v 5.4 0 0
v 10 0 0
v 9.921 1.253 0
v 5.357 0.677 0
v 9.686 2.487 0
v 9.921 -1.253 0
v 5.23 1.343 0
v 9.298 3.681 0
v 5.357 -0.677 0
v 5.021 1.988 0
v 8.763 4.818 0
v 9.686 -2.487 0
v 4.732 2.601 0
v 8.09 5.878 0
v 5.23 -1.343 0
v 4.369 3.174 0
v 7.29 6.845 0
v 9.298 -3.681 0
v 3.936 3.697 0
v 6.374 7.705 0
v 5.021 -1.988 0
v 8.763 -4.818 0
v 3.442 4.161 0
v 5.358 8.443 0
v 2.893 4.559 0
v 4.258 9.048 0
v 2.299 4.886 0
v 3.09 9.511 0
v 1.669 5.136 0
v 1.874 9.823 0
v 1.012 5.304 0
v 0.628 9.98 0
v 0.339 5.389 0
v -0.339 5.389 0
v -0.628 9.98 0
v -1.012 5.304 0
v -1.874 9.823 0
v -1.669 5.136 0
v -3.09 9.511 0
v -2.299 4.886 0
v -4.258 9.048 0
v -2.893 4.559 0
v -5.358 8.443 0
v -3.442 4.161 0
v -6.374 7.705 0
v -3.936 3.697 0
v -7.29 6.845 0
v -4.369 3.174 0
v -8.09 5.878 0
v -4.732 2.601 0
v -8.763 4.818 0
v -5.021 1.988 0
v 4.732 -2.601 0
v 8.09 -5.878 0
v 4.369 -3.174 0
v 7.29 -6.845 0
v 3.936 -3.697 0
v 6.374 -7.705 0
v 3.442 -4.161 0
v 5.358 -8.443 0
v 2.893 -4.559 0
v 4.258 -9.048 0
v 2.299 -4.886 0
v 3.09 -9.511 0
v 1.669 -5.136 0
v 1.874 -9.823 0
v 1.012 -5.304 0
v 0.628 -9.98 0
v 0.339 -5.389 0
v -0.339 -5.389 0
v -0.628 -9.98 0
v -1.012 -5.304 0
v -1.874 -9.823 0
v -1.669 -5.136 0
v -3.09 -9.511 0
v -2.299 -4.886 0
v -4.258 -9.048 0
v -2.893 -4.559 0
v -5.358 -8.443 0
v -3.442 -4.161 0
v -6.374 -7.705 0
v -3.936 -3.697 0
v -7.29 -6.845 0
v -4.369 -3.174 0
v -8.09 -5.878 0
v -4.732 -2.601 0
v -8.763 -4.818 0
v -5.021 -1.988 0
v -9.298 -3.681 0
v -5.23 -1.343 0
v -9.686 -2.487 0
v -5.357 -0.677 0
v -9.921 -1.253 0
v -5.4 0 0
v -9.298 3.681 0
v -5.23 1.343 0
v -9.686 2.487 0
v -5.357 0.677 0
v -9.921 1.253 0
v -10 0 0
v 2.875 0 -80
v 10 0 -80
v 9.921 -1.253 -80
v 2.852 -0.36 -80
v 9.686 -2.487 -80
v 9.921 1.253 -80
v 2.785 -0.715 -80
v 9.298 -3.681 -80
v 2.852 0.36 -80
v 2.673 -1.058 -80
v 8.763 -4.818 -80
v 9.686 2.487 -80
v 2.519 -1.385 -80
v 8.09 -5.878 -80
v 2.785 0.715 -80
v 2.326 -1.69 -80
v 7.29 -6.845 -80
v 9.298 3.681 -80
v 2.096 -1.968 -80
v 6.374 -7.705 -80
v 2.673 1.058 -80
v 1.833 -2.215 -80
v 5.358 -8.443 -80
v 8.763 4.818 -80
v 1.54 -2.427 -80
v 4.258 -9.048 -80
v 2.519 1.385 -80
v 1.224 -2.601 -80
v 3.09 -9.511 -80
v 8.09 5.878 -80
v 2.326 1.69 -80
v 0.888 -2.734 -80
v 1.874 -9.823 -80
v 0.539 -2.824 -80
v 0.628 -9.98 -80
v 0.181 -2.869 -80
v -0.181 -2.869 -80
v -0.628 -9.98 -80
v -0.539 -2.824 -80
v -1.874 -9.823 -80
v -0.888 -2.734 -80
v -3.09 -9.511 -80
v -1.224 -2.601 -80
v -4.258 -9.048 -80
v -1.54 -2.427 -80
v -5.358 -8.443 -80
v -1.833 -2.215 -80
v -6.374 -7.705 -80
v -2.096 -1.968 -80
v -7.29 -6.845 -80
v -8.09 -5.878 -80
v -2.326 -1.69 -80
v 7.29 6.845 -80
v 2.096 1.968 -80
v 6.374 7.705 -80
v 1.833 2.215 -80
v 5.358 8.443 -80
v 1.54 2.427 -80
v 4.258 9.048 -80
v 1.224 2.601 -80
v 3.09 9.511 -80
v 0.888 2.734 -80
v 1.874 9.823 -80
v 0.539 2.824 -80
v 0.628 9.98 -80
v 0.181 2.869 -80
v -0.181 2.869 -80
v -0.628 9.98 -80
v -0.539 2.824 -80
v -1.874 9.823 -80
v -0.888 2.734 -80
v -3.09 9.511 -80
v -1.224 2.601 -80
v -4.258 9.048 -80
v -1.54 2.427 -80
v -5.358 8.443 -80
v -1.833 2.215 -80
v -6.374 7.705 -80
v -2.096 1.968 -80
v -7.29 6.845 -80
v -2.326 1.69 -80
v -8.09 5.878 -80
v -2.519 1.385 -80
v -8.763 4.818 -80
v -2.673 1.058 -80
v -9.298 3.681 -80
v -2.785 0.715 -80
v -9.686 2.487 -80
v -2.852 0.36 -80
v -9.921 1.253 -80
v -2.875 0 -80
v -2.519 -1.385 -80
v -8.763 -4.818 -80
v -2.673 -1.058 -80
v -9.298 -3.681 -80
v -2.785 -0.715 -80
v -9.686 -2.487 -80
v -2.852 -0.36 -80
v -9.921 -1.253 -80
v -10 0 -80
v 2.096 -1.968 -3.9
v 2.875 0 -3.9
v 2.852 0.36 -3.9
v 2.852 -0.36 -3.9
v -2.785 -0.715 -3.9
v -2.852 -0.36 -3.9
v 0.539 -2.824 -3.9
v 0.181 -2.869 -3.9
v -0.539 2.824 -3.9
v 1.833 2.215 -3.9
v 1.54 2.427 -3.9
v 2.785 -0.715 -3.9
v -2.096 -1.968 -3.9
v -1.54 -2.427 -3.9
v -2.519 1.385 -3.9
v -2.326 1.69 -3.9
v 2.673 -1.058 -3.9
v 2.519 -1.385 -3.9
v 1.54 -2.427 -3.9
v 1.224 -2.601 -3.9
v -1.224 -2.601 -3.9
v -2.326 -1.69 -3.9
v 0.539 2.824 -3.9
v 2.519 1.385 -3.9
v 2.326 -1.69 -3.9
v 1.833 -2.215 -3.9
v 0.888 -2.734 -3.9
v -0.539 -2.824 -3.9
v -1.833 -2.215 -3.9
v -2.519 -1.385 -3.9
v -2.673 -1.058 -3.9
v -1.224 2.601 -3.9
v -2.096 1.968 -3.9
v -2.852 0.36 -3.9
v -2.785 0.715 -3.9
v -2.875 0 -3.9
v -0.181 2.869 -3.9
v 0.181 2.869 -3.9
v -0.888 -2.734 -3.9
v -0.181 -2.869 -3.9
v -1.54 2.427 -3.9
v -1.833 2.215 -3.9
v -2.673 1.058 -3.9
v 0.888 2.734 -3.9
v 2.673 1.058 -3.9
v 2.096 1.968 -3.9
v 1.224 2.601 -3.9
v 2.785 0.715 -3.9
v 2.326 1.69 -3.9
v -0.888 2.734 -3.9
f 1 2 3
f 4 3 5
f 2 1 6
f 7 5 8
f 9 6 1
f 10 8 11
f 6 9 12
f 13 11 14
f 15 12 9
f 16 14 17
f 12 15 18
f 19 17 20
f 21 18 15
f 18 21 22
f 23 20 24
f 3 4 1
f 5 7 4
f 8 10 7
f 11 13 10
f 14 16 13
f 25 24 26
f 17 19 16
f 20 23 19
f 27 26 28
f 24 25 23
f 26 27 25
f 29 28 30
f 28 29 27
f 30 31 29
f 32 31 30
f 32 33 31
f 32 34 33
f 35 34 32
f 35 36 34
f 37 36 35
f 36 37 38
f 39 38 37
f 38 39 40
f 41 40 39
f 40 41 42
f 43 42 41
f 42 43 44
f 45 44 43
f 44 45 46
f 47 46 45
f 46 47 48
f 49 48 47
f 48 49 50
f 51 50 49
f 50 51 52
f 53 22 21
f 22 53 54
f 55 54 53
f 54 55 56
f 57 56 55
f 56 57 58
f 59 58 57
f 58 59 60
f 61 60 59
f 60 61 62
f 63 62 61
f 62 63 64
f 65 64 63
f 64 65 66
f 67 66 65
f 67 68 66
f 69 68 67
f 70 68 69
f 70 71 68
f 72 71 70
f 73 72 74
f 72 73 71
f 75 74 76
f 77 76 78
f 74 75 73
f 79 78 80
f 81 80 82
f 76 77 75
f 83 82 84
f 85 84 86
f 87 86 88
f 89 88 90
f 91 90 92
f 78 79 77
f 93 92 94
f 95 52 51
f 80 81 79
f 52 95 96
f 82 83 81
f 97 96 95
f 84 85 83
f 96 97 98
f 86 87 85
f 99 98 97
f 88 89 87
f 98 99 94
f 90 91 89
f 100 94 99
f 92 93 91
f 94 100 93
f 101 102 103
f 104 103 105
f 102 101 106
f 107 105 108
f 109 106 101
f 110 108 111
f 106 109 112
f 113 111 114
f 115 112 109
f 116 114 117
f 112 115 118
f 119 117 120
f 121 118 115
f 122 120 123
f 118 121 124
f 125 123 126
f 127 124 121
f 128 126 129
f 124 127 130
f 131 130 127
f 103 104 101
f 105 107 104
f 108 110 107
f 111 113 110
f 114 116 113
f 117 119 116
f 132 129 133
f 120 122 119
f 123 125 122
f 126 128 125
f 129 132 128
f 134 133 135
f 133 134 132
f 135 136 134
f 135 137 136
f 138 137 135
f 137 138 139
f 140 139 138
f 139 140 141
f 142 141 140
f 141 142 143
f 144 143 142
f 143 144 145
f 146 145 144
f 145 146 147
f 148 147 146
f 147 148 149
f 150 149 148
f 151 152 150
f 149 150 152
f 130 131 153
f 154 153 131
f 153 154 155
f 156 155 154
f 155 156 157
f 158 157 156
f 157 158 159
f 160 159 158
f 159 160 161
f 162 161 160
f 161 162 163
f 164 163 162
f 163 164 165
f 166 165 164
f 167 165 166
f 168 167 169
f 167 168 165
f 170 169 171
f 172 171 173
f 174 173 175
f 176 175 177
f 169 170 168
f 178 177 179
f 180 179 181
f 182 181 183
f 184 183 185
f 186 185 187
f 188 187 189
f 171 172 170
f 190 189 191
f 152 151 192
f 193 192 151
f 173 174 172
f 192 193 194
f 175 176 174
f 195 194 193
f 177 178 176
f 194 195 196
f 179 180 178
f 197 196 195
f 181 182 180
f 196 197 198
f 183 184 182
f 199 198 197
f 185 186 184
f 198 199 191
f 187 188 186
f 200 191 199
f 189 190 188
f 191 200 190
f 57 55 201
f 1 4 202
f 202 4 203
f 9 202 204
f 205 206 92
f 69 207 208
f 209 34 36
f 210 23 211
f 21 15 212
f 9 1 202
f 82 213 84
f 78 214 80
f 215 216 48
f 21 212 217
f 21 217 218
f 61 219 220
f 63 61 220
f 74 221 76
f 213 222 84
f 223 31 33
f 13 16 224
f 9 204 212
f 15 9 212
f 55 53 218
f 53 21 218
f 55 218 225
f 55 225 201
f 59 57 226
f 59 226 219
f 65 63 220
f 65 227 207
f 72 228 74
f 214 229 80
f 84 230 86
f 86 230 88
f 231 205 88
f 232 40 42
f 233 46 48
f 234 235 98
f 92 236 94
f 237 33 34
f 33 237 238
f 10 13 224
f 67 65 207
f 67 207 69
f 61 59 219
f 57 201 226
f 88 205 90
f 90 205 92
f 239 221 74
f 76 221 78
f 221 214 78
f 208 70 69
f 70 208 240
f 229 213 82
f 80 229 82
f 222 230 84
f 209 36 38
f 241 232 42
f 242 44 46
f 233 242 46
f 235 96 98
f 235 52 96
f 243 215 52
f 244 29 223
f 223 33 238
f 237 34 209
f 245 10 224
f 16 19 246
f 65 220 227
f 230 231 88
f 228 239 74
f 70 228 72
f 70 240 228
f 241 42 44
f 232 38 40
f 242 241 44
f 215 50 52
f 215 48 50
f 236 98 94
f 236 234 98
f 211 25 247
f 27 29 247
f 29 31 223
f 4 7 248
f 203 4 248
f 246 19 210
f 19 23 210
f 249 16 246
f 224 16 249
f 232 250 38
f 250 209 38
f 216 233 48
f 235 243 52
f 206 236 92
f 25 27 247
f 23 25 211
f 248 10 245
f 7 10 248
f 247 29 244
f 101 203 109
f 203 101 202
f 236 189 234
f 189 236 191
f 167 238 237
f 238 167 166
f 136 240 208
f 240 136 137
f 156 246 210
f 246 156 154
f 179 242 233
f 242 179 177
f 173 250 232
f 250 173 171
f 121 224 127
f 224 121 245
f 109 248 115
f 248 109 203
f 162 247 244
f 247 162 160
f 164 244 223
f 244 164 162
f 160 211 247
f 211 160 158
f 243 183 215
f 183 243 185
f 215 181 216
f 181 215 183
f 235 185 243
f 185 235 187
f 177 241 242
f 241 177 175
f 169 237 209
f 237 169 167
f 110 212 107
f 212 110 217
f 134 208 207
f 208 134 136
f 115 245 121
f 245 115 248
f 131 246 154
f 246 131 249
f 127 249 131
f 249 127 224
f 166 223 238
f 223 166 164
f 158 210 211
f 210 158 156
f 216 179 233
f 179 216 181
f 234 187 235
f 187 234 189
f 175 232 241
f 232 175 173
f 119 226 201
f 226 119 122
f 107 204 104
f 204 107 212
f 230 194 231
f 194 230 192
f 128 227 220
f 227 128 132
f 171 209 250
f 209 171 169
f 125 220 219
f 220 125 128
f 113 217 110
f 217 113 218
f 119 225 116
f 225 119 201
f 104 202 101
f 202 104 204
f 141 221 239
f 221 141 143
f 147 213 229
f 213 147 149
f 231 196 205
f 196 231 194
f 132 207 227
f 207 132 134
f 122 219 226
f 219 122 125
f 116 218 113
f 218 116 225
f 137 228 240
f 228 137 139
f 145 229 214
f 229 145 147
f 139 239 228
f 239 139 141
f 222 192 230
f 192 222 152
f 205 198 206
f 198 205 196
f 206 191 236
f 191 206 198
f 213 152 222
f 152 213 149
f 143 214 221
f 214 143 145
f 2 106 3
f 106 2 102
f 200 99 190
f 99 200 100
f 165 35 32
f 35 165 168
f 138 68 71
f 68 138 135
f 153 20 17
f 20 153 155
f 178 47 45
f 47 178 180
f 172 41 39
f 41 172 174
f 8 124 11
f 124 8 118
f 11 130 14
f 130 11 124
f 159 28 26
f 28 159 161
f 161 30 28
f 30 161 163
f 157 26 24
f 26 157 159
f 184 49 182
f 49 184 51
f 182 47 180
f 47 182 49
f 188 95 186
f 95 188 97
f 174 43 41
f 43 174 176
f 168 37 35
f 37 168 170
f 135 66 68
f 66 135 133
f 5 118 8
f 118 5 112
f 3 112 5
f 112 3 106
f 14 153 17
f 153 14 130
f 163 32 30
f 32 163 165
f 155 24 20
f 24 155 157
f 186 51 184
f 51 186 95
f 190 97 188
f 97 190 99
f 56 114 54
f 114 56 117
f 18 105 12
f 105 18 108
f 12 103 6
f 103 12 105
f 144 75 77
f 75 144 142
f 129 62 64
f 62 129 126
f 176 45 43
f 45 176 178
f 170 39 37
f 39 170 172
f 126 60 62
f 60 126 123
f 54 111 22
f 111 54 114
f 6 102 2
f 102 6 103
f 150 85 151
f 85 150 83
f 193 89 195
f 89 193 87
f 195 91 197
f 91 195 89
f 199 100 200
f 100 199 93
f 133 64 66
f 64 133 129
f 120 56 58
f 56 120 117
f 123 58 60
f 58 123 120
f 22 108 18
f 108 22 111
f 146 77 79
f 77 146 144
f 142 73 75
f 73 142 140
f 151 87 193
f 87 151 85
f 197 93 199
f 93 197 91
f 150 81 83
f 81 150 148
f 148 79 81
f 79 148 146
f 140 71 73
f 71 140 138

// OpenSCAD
$fn = 50;


difference() {
	union() {
		translate(v = [0, 0, -80.0000000000]) {
			cylinder(h = 80, r = 10.0000000000);
		}
	}
	union() {
		translate(v = [0, 0, 0]) {
			rotate(a = [0, 0, 0]) {
				difference() {
					union() {
						#translate(v = [0, 0, -80.0000000000]) {
							cylinder(h = 80, r = 2.6000000000);
						}
						#translate(v = [0, 0, -3.9000000000]) {
							cylinder(h = 3.9000000000, r1 = 2.8750000000, r2 = 5.4000000000);
						}
						#translate(v = [0, 0, -80.0000000000]) {
							cylinder(h = 80, r = 2.8750000000);
						}
						#translate(v = [0, 0, -80.0000000000]) {
							cylinder(h = 80, r = 2.6000000000);
						}
					}
					union();
				}
			}
		}
	}
}
